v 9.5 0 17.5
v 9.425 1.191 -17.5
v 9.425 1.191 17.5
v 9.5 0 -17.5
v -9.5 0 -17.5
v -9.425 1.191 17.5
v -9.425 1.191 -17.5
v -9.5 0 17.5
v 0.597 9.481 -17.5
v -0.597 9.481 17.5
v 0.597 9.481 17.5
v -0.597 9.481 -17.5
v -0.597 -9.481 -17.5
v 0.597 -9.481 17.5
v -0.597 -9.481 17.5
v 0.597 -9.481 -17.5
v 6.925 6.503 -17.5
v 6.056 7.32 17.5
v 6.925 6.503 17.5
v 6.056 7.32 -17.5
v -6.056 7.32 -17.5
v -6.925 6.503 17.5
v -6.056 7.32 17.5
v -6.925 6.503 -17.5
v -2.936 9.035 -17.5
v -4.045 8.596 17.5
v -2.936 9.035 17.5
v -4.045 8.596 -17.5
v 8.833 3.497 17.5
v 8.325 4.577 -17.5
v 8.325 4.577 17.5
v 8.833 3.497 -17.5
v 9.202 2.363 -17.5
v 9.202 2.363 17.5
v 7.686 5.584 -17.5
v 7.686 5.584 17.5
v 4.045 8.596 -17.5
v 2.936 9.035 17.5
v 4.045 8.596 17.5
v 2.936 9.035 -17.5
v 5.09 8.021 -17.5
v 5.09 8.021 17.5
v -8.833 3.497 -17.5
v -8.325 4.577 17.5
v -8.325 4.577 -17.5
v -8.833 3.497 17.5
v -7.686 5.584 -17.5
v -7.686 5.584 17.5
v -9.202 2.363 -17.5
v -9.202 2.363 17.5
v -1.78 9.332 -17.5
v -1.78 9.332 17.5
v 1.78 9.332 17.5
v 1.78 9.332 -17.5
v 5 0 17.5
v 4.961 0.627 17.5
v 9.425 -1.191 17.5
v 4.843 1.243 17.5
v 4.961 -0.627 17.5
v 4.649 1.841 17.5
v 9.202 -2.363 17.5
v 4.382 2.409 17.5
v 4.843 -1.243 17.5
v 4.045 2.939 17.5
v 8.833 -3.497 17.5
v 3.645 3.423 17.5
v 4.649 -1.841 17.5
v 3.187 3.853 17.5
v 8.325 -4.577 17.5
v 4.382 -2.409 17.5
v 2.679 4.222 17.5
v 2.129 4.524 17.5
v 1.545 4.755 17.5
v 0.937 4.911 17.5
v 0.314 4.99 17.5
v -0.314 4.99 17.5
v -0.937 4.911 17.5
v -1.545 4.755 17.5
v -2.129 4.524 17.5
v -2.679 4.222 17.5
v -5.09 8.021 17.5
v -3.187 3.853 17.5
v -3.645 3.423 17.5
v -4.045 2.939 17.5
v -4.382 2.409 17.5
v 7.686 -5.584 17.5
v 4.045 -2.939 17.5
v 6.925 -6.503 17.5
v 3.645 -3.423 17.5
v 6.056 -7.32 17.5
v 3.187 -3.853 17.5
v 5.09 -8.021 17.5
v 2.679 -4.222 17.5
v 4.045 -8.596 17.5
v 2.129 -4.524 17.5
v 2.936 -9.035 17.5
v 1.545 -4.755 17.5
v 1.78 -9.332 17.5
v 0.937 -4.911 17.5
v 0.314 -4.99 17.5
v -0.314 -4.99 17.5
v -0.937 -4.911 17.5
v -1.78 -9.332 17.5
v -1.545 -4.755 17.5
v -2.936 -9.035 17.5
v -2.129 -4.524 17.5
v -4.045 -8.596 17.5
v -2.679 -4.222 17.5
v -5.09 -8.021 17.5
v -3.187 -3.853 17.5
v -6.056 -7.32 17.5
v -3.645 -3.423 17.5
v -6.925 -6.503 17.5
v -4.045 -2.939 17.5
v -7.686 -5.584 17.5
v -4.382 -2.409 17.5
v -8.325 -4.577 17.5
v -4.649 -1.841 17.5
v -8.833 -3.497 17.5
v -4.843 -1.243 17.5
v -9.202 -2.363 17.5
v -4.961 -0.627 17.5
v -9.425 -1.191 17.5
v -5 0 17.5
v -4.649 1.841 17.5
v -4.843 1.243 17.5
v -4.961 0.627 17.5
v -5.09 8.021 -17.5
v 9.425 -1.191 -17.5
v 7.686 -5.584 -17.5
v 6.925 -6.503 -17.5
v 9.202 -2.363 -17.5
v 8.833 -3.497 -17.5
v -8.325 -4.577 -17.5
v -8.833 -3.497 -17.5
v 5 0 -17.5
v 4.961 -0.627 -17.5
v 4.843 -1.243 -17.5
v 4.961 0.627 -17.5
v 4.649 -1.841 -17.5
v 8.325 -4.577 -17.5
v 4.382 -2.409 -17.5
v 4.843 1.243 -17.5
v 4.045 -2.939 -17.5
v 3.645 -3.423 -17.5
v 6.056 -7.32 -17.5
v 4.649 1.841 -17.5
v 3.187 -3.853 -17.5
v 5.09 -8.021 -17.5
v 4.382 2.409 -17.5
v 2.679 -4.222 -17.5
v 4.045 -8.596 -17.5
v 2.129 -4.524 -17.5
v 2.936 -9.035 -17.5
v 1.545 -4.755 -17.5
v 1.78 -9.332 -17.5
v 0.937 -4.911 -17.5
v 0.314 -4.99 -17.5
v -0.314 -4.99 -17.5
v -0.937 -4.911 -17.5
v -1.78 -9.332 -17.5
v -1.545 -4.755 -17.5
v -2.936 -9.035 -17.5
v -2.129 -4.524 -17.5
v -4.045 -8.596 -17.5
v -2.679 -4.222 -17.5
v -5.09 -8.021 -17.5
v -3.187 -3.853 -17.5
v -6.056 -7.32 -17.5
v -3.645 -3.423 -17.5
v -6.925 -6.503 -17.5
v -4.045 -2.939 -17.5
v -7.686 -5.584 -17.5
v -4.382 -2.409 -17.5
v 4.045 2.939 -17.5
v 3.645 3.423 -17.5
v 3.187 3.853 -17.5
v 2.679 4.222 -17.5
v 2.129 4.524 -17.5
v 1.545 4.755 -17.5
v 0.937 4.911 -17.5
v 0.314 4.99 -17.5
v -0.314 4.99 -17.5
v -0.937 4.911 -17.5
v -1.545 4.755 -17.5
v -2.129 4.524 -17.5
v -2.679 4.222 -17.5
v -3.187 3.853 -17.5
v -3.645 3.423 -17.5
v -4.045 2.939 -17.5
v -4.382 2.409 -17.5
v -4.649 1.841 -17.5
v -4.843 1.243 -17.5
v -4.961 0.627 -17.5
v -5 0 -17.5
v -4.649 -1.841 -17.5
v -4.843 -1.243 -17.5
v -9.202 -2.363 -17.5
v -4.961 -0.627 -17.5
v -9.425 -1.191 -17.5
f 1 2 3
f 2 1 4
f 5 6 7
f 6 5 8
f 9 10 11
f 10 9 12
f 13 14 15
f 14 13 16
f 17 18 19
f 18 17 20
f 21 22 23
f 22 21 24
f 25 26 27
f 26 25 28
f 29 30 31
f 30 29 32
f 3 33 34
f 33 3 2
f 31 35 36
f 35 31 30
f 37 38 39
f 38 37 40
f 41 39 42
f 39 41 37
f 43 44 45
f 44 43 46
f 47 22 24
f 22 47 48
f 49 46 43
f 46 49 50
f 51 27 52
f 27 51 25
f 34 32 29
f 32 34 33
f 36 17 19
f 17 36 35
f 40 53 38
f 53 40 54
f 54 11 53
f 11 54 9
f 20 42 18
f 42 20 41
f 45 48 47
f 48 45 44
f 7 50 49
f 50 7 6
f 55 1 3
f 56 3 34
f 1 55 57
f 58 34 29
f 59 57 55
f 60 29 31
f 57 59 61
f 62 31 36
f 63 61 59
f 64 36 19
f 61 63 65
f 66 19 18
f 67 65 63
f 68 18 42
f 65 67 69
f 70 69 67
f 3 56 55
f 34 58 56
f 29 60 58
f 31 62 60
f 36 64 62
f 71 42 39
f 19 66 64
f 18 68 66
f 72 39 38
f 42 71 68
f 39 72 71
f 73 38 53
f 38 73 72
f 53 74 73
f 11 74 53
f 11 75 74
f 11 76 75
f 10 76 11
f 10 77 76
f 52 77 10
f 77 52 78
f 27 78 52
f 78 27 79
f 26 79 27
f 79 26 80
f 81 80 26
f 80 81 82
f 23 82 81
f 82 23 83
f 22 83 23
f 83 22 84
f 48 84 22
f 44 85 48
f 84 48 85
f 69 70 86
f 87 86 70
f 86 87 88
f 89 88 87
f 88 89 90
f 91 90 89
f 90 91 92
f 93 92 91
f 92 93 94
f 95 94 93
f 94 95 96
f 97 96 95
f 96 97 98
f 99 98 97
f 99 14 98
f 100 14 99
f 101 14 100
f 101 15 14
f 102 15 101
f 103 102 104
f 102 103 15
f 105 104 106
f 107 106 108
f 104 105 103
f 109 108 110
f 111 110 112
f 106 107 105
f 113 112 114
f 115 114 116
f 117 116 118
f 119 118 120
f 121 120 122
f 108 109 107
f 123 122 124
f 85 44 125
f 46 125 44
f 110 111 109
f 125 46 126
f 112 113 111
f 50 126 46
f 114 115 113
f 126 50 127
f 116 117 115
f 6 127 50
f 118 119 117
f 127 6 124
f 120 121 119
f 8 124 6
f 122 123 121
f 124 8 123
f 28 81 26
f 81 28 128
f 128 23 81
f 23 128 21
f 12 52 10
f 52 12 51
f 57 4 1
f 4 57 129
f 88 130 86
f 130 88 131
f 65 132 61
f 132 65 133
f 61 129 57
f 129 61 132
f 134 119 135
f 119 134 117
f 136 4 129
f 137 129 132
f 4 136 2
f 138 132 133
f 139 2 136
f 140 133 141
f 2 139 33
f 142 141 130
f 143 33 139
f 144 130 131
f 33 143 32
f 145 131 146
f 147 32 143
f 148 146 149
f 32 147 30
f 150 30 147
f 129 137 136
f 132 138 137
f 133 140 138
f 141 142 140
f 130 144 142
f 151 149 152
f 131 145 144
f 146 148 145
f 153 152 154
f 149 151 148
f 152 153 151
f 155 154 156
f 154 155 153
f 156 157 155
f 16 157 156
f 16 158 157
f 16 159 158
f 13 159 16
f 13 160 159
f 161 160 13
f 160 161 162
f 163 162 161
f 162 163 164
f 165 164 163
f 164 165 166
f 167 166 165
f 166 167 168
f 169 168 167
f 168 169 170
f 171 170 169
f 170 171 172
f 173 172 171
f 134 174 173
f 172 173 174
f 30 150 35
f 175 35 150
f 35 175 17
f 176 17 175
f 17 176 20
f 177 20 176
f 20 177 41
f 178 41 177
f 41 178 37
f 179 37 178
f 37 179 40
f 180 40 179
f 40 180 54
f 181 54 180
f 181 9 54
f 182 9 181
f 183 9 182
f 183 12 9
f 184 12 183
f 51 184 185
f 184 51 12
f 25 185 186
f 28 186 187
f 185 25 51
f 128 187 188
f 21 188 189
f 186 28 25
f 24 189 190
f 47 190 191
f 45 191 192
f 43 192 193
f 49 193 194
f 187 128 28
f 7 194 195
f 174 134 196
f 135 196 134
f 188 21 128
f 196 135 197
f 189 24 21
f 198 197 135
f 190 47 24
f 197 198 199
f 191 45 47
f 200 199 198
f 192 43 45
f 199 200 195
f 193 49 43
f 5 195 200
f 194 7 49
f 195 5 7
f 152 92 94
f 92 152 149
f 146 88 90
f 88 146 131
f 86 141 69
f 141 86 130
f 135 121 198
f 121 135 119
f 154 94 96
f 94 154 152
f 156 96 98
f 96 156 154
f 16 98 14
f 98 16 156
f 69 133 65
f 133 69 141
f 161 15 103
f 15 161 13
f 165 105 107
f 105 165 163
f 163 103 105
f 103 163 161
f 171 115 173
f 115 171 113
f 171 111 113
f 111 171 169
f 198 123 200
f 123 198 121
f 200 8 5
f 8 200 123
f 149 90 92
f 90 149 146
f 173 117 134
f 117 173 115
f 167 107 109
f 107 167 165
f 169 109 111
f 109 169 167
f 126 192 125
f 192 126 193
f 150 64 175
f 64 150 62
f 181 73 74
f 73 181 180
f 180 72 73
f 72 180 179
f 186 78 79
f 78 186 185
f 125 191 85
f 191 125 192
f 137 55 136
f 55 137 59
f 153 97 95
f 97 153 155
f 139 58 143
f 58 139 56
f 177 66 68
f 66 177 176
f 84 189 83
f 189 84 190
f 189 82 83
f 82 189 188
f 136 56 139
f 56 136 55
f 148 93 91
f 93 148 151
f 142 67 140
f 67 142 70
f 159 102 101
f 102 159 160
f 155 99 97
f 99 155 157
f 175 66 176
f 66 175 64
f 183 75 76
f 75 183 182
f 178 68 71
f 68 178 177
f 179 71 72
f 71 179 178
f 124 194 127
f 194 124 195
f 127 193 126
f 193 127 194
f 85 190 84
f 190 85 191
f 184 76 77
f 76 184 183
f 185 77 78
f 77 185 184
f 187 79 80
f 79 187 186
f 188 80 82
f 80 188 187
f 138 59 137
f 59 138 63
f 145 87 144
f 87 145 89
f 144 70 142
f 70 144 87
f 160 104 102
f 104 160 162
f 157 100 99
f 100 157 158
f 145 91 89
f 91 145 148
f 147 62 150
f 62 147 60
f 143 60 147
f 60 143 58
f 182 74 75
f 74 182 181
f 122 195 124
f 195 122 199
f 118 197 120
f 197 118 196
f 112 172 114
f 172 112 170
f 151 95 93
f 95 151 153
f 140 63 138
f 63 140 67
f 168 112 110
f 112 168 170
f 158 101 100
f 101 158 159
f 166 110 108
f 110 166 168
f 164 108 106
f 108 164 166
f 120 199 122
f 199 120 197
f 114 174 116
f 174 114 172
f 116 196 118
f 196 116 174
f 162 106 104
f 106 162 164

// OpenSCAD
$fn = 50;


difference() {
	union() {
		translate(v = [0, 0, -17.5000000000]) {
			cylinder(h = 35, r = 9.5000000000);
		}
	}
	union() {
		translate(v = [0, 0, -100.0000000000]) {
			cylinder(h = 200, r = 5.0000000000);
		}
	}
}
